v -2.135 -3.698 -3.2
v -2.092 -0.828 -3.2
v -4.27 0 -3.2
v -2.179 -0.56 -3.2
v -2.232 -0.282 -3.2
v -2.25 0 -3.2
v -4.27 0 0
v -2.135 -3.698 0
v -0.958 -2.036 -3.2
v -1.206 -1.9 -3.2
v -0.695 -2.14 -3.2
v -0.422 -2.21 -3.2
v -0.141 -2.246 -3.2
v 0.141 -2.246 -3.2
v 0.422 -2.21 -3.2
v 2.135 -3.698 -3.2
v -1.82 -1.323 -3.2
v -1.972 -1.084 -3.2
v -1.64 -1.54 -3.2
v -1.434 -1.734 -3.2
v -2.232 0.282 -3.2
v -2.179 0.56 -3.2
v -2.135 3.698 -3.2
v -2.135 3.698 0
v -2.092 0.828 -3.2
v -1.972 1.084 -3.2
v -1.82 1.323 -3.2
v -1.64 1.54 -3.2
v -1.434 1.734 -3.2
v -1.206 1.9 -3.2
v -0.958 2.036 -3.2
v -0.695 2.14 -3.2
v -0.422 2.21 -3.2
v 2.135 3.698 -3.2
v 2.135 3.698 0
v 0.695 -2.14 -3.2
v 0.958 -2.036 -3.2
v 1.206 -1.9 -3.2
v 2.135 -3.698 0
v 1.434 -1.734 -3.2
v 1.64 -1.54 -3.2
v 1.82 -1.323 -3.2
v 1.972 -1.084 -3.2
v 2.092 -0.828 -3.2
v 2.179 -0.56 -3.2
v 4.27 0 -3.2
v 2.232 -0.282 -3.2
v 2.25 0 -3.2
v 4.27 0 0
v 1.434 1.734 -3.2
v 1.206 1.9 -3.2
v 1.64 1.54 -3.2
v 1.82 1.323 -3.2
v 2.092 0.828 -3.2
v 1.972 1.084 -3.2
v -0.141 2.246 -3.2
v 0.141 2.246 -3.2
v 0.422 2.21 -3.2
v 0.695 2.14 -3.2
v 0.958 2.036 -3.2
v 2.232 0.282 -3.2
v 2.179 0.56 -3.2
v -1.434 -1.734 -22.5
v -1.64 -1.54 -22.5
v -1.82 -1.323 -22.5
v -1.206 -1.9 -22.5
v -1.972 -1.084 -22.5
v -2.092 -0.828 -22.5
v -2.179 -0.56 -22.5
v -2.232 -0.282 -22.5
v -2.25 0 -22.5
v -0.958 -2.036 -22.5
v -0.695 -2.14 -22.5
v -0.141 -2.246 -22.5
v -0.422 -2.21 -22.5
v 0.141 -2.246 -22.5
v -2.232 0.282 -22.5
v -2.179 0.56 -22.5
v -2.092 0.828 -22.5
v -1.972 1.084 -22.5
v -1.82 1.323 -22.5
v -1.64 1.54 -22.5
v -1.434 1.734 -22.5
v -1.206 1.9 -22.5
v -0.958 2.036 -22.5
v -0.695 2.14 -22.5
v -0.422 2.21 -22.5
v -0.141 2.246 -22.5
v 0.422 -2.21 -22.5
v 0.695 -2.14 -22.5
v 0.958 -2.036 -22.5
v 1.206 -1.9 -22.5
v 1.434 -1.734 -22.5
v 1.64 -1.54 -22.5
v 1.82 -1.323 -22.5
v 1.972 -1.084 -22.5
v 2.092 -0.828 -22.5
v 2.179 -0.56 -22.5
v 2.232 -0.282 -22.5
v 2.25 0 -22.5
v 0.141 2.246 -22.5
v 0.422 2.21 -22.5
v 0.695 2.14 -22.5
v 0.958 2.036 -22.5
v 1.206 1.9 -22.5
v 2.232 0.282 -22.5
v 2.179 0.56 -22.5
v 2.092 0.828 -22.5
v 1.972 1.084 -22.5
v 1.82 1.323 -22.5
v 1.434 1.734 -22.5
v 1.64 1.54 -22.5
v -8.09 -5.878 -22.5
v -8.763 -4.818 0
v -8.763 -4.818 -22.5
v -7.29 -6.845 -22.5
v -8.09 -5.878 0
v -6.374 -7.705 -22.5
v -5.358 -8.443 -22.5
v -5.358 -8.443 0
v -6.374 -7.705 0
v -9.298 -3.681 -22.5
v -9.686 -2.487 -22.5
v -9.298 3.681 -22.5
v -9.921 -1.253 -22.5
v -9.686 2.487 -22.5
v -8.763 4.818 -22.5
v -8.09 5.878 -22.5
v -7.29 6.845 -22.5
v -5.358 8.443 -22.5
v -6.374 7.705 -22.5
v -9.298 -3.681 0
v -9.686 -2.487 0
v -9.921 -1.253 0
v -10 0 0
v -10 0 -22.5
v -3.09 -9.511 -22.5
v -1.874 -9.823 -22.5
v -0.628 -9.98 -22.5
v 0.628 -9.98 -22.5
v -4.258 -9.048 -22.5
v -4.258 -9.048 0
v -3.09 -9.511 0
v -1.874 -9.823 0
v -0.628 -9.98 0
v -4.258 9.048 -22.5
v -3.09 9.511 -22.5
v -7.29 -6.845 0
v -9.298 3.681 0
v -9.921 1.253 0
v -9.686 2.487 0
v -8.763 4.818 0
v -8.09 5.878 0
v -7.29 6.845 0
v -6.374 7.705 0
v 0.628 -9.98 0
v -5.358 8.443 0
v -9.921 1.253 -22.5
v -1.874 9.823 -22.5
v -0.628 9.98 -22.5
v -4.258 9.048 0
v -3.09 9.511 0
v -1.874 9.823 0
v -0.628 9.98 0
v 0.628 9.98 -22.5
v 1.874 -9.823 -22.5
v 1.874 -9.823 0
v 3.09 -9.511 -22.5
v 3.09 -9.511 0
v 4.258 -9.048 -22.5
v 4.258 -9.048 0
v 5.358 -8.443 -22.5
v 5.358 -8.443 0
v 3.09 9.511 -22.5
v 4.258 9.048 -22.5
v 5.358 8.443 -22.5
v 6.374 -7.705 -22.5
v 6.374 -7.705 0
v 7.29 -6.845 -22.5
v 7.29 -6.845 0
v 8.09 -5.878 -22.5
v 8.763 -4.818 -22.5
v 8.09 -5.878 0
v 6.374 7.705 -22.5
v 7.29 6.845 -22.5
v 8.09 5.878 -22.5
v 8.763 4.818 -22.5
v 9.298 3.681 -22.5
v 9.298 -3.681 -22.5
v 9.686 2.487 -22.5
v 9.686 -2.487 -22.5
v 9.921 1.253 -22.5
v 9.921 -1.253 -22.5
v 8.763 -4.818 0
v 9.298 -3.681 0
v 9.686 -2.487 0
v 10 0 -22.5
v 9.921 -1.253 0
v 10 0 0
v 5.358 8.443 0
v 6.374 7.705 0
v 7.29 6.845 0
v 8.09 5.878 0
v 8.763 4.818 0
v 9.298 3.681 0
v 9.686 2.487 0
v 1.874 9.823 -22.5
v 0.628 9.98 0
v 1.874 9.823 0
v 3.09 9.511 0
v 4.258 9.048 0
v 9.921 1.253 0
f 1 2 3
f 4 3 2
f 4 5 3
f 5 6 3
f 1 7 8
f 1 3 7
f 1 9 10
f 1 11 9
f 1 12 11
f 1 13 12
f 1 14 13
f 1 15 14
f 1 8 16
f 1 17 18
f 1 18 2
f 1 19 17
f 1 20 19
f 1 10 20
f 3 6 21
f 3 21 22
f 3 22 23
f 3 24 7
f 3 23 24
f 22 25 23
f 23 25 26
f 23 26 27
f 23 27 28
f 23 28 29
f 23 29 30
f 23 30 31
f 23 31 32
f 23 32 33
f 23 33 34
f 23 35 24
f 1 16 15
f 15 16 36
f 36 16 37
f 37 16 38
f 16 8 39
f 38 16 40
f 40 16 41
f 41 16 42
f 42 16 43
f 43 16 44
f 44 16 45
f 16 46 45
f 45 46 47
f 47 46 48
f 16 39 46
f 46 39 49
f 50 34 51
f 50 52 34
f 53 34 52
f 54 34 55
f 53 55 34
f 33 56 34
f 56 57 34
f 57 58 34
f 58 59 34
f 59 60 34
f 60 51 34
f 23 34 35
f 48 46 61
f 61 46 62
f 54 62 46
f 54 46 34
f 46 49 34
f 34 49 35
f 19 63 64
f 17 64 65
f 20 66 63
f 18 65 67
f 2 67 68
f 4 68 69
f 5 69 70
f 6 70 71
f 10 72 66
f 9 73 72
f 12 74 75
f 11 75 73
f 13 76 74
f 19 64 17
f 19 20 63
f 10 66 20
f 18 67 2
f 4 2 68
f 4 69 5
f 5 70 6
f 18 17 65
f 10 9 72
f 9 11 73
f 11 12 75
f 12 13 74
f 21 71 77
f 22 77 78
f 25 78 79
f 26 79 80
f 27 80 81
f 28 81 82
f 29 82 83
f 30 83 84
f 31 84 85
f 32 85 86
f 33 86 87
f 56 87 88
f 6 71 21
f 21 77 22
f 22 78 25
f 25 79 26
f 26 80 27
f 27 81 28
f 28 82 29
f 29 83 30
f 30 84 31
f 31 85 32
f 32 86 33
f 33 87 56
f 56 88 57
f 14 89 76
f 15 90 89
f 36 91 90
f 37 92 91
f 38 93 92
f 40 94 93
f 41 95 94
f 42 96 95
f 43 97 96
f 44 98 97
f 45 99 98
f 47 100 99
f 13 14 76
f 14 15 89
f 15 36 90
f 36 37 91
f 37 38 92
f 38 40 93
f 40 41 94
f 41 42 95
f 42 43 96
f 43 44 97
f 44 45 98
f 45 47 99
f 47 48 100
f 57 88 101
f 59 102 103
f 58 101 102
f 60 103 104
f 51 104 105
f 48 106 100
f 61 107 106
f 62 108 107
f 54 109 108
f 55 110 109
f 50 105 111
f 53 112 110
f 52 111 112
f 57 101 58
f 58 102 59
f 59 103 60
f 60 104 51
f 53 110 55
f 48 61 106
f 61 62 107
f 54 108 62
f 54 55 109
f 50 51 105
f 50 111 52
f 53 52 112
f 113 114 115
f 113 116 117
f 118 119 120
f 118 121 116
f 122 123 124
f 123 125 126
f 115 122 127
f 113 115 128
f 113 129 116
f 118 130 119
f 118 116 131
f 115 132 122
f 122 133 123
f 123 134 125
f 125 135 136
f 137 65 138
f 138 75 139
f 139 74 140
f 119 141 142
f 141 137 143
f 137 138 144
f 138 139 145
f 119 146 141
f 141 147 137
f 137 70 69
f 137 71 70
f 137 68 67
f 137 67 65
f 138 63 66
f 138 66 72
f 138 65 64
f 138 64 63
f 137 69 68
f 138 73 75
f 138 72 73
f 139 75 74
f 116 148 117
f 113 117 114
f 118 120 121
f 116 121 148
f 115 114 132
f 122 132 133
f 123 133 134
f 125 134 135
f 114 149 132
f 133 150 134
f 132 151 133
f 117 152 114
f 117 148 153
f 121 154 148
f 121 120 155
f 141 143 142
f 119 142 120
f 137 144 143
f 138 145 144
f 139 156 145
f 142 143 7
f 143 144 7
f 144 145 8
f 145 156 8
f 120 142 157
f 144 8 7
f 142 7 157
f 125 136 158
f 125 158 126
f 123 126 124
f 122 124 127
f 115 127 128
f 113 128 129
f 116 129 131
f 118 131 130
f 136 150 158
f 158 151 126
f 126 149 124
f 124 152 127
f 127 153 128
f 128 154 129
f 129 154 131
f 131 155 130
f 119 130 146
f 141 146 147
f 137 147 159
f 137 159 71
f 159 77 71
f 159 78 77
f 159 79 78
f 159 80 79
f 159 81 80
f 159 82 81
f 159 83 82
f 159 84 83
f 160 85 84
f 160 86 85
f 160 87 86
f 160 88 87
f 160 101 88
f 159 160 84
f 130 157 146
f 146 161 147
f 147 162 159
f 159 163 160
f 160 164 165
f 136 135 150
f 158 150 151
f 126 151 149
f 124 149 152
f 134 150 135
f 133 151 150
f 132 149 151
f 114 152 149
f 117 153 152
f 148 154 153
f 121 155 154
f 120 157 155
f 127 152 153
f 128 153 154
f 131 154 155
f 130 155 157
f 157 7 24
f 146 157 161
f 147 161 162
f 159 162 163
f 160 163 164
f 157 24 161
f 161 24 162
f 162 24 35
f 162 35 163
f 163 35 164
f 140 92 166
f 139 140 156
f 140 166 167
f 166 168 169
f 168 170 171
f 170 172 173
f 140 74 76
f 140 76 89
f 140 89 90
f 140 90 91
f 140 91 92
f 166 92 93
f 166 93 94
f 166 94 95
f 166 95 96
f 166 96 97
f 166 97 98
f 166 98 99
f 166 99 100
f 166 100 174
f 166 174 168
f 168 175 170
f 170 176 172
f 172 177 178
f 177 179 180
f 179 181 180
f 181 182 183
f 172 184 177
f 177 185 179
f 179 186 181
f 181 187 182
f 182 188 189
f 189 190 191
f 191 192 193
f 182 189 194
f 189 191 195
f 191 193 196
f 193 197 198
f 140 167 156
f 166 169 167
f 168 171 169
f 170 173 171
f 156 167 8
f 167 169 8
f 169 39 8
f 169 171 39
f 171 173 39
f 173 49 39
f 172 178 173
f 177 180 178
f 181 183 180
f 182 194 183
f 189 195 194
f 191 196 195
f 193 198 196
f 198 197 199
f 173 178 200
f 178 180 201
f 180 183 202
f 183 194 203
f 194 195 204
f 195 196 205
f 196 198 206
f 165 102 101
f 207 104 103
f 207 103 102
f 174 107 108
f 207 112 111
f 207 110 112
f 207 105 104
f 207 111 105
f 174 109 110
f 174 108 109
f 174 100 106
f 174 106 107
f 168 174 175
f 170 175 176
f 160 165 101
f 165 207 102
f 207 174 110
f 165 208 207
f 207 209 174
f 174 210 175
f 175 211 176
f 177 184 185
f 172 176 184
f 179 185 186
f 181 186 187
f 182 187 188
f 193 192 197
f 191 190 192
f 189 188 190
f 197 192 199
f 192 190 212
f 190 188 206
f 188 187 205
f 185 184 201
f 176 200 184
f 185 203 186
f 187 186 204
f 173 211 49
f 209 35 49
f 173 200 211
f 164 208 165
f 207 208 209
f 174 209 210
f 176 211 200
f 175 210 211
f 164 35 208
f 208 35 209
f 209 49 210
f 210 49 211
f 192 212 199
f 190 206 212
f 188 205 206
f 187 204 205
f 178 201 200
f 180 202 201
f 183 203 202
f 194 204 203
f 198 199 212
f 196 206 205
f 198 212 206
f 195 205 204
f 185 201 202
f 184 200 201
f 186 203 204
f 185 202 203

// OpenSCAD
$fn = 50;

difference() {
	union() {
		translate(v = [0, 0, -22.5]) {
			cylinder(h = 22.5, r = 10.0);
		}
	}
	union() {
		translate(v = [0, 0, 0]) {
			rotate(a = [0, 0, 0]) {
				difference() {
					union() {
						translate(v = [0, 0, -3.2]) {
							linear_extrude(height = 3.2) {
								polygon(points = [[4.2698, 0.0], [2.1349000000000005, 3.697755269078796], [-2.134899999999999, 3.6977552690787965], [-4.2698, 5.228996902999369e-16], [-2.134900000000002, -3.6977552690787956], [2.1348999999999974, -3.697755269078798]]);
							}
						}
					}
					union();
				}
			}
		}
		#translate(v = [0, 0, -100.0]) {
			cylinder(h = 200, r = 2.25);
		}
	}
}
